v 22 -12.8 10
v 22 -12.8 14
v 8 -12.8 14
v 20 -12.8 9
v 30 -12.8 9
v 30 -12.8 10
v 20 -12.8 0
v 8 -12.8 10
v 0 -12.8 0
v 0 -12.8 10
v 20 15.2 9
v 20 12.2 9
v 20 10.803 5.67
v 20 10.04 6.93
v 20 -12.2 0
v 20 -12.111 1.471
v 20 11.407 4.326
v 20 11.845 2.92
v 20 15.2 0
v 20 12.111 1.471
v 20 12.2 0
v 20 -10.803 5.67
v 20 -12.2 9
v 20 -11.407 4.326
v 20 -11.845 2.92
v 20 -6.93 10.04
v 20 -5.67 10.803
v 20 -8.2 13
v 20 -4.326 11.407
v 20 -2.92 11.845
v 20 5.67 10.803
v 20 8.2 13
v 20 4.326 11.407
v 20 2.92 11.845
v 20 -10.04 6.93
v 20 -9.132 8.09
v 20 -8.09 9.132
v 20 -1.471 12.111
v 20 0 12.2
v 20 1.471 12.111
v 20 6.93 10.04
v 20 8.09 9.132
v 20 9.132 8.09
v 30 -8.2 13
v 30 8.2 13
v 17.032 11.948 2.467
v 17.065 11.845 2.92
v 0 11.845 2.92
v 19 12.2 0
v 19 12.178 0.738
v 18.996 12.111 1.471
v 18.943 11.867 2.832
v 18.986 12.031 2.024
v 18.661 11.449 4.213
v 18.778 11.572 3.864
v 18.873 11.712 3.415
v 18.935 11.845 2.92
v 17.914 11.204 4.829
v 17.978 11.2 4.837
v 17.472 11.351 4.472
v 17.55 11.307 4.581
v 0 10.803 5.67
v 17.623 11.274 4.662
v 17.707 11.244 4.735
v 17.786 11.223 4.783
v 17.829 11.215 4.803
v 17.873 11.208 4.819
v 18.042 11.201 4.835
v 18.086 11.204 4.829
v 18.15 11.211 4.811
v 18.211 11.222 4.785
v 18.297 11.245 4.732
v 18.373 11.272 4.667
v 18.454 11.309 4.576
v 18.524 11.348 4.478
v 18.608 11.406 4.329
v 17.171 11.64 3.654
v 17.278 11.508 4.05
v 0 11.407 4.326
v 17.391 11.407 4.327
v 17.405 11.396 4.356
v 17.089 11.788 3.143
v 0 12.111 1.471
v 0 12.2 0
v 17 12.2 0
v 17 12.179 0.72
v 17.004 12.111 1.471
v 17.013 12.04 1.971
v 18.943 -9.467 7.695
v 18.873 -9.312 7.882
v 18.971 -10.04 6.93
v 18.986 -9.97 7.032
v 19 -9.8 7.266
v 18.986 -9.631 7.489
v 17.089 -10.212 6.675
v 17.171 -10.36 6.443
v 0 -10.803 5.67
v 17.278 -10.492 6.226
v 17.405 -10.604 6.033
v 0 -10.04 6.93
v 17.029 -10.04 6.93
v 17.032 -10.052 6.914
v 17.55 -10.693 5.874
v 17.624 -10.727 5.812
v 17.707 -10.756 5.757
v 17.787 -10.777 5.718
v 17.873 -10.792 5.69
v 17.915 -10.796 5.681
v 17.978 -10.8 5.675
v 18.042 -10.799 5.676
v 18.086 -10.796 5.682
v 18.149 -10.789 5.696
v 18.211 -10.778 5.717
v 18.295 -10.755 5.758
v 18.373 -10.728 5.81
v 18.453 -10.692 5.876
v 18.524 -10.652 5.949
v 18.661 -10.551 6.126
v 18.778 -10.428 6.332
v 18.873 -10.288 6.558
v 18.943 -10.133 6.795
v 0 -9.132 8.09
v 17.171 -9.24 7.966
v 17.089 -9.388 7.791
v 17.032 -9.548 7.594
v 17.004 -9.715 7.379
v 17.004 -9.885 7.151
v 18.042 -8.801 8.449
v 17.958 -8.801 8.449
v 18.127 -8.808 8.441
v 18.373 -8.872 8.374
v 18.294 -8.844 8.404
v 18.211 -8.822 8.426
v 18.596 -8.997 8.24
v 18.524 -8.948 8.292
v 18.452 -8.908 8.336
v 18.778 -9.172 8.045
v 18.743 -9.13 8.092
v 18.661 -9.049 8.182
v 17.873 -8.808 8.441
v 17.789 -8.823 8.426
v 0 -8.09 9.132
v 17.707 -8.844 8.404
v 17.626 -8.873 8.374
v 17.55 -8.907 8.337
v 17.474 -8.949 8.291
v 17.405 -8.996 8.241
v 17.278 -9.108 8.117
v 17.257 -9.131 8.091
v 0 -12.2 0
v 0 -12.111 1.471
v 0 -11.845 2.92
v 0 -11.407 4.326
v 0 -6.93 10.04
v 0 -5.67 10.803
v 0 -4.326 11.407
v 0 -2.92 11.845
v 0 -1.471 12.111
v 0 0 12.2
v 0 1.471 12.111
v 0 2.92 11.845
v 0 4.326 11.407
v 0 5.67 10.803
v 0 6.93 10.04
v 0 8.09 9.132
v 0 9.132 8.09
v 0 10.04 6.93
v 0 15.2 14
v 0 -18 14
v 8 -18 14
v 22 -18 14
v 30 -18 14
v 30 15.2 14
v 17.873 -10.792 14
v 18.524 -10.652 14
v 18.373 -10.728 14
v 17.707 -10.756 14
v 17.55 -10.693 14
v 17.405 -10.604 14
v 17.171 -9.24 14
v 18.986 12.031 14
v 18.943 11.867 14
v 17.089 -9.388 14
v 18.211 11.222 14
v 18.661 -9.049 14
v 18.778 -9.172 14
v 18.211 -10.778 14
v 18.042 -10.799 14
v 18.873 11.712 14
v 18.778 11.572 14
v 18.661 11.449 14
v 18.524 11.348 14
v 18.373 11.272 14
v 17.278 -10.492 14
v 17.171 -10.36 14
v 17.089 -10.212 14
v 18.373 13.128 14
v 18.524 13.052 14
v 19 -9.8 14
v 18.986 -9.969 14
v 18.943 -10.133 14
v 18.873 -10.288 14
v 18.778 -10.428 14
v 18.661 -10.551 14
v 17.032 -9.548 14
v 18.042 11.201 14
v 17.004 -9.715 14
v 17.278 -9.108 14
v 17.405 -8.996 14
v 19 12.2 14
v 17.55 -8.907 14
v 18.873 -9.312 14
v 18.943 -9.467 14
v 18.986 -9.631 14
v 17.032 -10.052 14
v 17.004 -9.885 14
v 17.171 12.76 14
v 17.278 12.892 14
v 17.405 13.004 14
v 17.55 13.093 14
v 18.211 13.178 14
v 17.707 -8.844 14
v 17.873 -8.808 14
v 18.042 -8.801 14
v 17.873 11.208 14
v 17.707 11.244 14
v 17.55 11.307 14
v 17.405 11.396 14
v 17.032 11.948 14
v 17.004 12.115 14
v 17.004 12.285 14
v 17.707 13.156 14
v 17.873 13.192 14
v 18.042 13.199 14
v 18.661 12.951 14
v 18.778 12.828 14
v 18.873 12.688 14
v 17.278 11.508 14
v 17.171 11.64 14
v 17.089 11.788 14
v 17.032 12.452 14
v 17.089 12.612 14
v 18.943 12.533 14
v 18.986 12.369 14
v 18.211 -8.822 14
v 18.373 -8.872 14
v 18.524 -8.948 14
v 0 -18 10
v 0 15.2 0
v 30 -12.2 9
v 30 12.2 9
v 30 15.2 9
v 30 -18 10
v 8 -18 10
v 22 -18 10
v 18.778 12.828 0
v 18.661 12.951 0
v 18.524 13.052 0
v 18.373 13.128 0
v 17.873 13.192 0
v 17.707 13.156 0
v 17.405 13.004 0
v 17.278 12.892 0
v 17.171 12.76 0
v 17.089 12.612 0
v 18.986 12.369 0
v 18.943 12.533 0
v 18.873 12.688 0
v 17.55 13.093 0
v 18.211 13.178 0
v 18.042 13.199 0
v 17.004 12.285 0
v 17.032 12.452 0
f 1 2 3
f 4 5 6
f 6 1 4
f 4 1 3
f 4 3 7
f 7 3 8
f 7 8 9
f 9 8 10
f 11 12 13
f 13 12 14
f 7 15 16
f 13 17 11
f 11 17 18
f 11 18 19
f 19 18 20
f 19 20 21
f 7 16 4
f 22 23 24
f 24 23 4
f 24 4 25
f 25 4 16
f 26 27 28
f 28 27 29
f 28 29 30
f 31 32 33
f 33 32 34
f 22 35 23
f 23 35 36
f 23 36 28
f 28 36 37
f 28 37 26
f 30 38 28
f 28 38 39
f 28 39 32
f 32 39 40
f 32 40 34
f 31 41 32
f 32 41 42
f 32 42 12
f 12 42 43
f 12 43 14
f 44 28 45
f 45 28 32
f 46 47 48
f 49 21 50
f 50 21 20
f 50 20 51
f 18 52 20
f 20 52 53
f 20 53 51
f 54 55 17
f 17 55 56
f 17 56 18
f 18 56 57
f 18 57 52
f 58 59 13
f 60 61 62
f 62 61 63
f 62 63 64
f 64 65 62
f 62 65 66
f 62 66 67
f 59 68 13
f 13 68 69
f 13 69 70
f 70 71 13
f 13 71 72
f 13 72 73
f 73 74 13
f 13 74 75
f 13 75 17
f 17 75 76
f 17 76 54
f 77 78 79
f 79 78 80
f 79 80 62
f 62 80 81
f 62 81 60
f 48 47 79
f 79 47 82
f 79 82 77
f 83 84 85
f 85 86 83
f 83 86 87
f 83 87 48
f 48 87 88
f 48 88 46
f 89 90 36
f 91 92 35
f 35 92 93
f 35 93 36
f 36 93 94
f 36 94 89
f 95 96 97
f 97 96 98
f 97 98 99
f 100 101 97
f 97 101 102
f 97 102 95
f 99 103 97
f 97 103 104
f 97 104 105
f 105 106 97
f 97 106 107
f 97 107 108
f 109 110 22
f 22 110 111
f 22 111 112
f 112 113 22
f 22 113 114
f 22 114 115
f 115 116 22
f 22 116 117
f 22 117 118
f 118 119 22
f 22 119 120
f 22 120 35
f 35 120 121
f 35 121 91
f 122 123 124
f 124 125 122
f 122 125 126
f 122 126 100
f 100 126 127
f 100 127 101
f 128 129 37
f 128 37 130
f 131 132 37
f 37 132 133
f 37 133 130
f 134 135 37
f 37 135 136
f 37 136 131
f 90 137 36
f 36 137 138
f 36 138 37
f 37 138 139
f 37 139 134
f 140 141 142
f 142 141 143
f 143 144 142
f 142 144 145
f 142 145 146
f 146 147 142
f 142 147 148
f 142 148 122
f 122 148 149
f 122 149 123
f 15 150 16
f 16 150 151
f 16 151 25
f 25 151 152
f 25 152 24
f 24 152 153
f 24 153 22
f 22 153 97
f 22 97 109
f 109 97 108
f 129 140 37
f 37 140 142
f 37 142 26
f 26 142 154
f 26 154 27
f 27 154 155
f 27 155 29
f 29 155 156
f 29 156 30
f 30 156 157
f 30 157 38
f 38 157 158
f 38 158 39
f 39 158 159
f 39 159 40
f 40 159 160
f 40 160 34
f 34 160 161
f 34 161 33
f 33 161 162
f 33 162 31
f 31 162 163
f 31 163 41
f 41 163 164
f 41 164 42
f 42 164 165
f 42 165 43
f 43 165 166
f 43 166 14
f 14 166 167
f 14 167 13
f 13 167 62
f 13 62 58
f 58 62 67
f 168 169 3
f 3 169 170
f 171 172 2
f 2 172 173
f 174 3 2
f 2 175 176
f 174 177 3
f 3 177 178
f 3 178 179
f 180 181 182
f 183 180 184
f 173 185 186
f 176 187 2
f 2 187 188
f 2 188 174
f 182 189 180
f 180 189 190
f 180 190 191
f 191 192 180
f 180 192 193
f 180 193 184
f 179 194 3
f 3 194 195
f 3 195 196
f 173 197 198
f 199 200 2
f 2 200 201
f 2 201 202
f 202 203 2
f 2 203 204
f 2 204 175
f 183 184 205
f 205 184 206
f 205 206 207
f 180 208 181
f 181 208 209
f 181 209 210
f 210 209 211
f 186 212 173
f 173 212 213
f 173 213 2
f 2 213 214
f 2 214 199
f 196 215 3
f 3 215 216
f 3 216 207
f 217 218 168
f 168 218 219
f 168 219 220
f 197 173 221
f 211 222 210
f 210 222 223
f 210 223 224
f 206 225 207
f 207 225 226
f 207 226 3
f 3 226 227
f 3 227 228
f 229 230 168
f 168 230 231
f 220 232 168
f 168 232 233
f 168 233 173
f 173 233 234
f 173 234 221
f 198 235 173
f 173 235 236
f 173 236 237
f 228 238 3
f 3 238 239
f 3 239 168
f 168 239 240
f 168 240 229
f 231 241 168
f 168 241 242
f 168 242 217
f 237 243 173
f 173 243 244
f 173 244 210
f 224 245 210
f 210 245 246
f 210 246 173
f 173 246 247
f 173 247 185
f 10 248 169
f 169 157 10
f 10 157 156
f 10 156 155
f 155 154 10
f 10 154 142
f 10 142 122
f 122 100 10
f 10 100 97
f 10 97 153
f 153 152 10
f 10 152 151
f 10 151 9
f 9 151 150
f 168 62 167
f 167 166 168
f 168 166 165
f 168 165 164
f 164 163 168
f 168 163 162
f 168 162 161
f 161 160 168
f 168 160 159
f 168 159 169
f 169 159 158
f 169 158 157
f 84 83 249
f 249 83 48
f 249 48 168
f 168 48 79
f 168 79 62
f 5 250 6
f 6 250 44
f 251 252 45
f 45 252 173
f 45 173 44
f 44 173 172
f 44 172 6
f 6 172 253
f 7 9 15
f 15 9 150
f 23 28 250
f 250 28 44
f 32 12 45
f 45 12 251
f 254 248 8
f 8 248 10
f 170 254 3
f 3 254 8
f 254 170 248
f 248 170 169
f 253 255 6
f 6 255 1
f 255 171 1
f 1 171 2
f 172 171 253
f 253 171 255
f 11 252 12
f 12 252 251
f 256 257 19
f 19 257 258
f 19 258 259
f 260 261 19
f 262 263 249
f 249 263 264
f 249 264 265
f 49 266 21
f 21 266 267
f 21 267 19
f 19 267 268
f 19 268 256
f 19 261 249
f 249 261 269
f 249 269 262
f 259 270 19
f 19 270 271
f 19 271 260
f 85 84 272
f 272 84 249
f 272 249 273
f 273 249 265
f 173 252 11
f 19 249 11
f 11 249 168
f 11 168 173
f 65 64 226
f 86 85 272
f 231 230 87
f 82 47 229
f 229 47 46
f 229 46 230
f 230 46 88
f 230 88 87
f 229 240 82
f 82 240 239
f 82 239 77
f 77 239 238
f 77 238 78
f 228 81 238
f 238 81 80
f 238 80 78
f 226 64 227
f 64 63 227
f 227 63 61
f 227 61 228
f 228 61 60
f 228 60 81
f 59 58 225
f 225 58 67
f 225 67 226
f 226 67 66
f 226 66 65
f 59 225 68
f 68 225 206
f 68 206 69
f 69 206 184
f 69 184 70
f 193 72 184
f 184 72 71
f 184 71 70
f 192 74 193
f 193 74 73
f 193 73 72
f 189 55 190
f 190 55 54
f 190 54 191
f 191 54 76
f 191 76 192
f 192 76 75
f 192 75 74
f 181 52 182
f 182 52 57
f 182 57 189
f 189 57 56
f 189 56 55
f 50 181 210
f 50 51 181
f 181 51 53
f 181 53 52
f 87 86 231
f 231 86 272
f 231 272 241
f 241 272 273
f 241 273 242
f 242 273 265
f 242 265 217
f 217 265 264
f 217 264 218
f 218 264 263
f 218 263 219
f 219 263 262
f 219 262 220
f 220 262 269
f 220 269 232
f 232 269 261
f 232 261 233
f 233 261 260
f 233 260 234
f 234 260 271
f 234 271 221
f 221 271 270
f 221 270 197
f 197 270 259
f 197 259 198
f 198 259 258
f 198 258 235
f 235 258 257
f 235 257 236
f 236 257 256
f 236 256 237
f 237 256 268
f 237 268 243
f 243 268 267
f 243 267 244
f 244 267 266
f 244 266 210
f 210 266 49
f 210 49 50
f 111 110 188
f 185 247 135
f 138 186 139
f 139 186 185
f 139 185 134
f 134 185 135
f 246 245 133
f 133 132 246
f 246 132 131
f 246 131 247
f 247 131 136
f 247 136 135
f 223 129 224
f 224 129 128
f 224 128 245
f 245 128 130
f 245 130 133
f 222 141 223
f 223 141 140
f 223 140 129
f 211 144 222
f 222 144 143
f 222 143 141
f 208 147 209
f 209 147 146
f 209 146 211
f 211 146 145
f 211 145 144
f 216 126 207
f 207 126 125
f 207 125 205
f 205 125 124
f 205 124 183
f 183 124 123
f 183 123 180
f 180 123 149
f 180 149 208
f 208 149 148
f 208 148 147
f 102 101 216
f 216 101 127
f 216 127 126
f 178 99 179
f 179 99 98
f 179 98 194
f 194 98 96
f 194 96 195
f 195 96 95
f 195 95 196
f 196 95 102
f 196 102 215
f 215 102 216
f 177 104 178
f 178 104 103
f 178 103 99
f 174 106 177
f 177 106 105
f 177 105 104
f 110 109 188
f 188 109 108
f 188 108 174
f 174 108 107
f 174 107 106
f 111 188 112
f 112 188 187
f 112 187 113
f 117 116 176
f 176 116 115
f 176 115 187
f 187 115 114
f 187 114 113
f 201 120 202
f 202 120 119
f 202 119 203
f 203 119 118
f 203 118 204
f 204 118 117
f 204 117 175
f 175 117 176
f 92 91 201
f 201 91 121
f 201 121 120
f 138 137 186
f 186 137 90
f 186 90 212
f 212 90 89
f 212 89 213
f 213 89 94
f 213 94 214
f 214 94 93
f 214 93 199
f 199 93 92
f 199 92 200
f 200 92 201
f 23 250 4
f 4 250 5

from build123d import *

# Parameters (mm, degrees)
EXTRUDE_1_DEPTH     = 20
SKETCH_2_W          = 1
SKETCH_2_H          = 24.4
EXTRUDE_2_DEPTH     = 10
EXTRUDE_4_DEPTH     = 0.6
EXTRUDE_5_DEPTH     = 10
SKETCH_8_W          = 8
SKETCH_8_H          = 4
EXTRUDE_6_DEPTH     = 5.2
EXTRUDE_7_DEPTH     = 3
SKETCH_3_R          = 1
CUT_EXTRUDE_1_DEPTH = 38.682887363
SKETCH_10_W         = 10
SKETCH_10_H         = 9
CUT_EXTRUDE_2_DEPTH = 3


with BuildPart() as part:
    # 草图1 → 凸台-拉伸1 (new body)
    with BuildSketch(Plane(origin=(0, 0, 0), x_dir=(0, 0, -1), z_dir=(1, 0, 0))):
        with BuildLine():
            Line((0, 12.2), (-14, 12.2))
            Line((-14, 12.2), (-14, -12.2))
            Line((-14, -12.2), (0, -12.2))
            ThreePointArc((0, -12.2), (-12.2, 0), (0, 12.2))
        make_face()
    extrude(amount=EXTRUDE_1_DEPTH)

    # 草图2 → 凸台-拉伸2 (add)
    with BuildSketch(Plane(origin=(20, 0, 0), x_dir=(0, 0, -1), z_dir=(1, 0, 0))):
        with Locations((-13.5, 0)):
            Rectangle(SKETCH_2_W, SKETCH_2_H)
    extrude(amount=EXTRUDE_2_DEPTH)

    # 草图6 → 凸台-拉伸4 (add)
    with BuildSketch(Plane.XZ.offset(12.2)):
        Polygon((0, 14), (0, 0), (20, 0), (20, 13), (30, 13), (30, 14), align=None)
    extrude(amount=EXTRUDE_4_DEPTH)

    # 草图7 → 凸台-拉伸5 (add)
    with BuildSketch(Plane(origin=(20, 0, 0), x_dir=(0, 0, -1), z_dir=(1, 0, 0))):
        Polygon((0, -12.2), (-9, -12.2), (-13, -8.2), (-13, -12.8), (0, -12.8), align=None)
        Polygon((-13, 8.2), (-9, 12.2), (-13, 12.2), align=None)
    extrude(amount=EXTRUDE_5_DEPTH)

    # 草图8 → 凸台-拉伸6 (add)
    with BuildSketch(Plane.XZ.offset(12.8)):
        with Locations((4, 12)):
            Rectangle(SKETCH_8_W, SKETCH_8_H)
        with Locations((26, 12)):
            Rectangle(SKETCH_8_W, SKETCH_8_H)
    extrude(amount=EXTRUDE_6_DEPTH)

    # 草图9 → 凸台-拉伸7 (add)
    with BuildSketch(Plane(origin=(0, 12.2, 0), x_dir=(1, 0, 0), z_dir=(0, 1, 0))):
        Polygon((0, 0), (20, 0), (20, -9), (30, -9), (30, -14), (0, -14), align=None)
    extrude(amount=EXTRUDE_7_DEPTH)

    # 草图3 → 切除-拉伸1 (cut, through all)
    with BuildSketch(Plane.XY.offset(14)):
        with Locations((18, 12.2)):
            Circle(SKETCH_3_R)
        with Locations((18, -9.8)):
            Circle(SKETCH_3_R)
    extrude(amount=-CUT_EXTRUDE_1_DEPTH, mode=Mode.SUBTRACT)

    # 草图10 → 切除-拉伸2 (cut)
    with BuildSketch(Plane(origin=(0, -12.2, 0), x_dir=(1, 0, 0), z_dir=(0, 1, 0))):
        with Locations((25, -4.5)):
            Rectangle(SKETCH_10_W, SKETCH_10_H)
    extrude(amount=-CUT_EXTRUDE_2_DEPTH, mode=Mode.SUBTRACT)


solid = part.part
